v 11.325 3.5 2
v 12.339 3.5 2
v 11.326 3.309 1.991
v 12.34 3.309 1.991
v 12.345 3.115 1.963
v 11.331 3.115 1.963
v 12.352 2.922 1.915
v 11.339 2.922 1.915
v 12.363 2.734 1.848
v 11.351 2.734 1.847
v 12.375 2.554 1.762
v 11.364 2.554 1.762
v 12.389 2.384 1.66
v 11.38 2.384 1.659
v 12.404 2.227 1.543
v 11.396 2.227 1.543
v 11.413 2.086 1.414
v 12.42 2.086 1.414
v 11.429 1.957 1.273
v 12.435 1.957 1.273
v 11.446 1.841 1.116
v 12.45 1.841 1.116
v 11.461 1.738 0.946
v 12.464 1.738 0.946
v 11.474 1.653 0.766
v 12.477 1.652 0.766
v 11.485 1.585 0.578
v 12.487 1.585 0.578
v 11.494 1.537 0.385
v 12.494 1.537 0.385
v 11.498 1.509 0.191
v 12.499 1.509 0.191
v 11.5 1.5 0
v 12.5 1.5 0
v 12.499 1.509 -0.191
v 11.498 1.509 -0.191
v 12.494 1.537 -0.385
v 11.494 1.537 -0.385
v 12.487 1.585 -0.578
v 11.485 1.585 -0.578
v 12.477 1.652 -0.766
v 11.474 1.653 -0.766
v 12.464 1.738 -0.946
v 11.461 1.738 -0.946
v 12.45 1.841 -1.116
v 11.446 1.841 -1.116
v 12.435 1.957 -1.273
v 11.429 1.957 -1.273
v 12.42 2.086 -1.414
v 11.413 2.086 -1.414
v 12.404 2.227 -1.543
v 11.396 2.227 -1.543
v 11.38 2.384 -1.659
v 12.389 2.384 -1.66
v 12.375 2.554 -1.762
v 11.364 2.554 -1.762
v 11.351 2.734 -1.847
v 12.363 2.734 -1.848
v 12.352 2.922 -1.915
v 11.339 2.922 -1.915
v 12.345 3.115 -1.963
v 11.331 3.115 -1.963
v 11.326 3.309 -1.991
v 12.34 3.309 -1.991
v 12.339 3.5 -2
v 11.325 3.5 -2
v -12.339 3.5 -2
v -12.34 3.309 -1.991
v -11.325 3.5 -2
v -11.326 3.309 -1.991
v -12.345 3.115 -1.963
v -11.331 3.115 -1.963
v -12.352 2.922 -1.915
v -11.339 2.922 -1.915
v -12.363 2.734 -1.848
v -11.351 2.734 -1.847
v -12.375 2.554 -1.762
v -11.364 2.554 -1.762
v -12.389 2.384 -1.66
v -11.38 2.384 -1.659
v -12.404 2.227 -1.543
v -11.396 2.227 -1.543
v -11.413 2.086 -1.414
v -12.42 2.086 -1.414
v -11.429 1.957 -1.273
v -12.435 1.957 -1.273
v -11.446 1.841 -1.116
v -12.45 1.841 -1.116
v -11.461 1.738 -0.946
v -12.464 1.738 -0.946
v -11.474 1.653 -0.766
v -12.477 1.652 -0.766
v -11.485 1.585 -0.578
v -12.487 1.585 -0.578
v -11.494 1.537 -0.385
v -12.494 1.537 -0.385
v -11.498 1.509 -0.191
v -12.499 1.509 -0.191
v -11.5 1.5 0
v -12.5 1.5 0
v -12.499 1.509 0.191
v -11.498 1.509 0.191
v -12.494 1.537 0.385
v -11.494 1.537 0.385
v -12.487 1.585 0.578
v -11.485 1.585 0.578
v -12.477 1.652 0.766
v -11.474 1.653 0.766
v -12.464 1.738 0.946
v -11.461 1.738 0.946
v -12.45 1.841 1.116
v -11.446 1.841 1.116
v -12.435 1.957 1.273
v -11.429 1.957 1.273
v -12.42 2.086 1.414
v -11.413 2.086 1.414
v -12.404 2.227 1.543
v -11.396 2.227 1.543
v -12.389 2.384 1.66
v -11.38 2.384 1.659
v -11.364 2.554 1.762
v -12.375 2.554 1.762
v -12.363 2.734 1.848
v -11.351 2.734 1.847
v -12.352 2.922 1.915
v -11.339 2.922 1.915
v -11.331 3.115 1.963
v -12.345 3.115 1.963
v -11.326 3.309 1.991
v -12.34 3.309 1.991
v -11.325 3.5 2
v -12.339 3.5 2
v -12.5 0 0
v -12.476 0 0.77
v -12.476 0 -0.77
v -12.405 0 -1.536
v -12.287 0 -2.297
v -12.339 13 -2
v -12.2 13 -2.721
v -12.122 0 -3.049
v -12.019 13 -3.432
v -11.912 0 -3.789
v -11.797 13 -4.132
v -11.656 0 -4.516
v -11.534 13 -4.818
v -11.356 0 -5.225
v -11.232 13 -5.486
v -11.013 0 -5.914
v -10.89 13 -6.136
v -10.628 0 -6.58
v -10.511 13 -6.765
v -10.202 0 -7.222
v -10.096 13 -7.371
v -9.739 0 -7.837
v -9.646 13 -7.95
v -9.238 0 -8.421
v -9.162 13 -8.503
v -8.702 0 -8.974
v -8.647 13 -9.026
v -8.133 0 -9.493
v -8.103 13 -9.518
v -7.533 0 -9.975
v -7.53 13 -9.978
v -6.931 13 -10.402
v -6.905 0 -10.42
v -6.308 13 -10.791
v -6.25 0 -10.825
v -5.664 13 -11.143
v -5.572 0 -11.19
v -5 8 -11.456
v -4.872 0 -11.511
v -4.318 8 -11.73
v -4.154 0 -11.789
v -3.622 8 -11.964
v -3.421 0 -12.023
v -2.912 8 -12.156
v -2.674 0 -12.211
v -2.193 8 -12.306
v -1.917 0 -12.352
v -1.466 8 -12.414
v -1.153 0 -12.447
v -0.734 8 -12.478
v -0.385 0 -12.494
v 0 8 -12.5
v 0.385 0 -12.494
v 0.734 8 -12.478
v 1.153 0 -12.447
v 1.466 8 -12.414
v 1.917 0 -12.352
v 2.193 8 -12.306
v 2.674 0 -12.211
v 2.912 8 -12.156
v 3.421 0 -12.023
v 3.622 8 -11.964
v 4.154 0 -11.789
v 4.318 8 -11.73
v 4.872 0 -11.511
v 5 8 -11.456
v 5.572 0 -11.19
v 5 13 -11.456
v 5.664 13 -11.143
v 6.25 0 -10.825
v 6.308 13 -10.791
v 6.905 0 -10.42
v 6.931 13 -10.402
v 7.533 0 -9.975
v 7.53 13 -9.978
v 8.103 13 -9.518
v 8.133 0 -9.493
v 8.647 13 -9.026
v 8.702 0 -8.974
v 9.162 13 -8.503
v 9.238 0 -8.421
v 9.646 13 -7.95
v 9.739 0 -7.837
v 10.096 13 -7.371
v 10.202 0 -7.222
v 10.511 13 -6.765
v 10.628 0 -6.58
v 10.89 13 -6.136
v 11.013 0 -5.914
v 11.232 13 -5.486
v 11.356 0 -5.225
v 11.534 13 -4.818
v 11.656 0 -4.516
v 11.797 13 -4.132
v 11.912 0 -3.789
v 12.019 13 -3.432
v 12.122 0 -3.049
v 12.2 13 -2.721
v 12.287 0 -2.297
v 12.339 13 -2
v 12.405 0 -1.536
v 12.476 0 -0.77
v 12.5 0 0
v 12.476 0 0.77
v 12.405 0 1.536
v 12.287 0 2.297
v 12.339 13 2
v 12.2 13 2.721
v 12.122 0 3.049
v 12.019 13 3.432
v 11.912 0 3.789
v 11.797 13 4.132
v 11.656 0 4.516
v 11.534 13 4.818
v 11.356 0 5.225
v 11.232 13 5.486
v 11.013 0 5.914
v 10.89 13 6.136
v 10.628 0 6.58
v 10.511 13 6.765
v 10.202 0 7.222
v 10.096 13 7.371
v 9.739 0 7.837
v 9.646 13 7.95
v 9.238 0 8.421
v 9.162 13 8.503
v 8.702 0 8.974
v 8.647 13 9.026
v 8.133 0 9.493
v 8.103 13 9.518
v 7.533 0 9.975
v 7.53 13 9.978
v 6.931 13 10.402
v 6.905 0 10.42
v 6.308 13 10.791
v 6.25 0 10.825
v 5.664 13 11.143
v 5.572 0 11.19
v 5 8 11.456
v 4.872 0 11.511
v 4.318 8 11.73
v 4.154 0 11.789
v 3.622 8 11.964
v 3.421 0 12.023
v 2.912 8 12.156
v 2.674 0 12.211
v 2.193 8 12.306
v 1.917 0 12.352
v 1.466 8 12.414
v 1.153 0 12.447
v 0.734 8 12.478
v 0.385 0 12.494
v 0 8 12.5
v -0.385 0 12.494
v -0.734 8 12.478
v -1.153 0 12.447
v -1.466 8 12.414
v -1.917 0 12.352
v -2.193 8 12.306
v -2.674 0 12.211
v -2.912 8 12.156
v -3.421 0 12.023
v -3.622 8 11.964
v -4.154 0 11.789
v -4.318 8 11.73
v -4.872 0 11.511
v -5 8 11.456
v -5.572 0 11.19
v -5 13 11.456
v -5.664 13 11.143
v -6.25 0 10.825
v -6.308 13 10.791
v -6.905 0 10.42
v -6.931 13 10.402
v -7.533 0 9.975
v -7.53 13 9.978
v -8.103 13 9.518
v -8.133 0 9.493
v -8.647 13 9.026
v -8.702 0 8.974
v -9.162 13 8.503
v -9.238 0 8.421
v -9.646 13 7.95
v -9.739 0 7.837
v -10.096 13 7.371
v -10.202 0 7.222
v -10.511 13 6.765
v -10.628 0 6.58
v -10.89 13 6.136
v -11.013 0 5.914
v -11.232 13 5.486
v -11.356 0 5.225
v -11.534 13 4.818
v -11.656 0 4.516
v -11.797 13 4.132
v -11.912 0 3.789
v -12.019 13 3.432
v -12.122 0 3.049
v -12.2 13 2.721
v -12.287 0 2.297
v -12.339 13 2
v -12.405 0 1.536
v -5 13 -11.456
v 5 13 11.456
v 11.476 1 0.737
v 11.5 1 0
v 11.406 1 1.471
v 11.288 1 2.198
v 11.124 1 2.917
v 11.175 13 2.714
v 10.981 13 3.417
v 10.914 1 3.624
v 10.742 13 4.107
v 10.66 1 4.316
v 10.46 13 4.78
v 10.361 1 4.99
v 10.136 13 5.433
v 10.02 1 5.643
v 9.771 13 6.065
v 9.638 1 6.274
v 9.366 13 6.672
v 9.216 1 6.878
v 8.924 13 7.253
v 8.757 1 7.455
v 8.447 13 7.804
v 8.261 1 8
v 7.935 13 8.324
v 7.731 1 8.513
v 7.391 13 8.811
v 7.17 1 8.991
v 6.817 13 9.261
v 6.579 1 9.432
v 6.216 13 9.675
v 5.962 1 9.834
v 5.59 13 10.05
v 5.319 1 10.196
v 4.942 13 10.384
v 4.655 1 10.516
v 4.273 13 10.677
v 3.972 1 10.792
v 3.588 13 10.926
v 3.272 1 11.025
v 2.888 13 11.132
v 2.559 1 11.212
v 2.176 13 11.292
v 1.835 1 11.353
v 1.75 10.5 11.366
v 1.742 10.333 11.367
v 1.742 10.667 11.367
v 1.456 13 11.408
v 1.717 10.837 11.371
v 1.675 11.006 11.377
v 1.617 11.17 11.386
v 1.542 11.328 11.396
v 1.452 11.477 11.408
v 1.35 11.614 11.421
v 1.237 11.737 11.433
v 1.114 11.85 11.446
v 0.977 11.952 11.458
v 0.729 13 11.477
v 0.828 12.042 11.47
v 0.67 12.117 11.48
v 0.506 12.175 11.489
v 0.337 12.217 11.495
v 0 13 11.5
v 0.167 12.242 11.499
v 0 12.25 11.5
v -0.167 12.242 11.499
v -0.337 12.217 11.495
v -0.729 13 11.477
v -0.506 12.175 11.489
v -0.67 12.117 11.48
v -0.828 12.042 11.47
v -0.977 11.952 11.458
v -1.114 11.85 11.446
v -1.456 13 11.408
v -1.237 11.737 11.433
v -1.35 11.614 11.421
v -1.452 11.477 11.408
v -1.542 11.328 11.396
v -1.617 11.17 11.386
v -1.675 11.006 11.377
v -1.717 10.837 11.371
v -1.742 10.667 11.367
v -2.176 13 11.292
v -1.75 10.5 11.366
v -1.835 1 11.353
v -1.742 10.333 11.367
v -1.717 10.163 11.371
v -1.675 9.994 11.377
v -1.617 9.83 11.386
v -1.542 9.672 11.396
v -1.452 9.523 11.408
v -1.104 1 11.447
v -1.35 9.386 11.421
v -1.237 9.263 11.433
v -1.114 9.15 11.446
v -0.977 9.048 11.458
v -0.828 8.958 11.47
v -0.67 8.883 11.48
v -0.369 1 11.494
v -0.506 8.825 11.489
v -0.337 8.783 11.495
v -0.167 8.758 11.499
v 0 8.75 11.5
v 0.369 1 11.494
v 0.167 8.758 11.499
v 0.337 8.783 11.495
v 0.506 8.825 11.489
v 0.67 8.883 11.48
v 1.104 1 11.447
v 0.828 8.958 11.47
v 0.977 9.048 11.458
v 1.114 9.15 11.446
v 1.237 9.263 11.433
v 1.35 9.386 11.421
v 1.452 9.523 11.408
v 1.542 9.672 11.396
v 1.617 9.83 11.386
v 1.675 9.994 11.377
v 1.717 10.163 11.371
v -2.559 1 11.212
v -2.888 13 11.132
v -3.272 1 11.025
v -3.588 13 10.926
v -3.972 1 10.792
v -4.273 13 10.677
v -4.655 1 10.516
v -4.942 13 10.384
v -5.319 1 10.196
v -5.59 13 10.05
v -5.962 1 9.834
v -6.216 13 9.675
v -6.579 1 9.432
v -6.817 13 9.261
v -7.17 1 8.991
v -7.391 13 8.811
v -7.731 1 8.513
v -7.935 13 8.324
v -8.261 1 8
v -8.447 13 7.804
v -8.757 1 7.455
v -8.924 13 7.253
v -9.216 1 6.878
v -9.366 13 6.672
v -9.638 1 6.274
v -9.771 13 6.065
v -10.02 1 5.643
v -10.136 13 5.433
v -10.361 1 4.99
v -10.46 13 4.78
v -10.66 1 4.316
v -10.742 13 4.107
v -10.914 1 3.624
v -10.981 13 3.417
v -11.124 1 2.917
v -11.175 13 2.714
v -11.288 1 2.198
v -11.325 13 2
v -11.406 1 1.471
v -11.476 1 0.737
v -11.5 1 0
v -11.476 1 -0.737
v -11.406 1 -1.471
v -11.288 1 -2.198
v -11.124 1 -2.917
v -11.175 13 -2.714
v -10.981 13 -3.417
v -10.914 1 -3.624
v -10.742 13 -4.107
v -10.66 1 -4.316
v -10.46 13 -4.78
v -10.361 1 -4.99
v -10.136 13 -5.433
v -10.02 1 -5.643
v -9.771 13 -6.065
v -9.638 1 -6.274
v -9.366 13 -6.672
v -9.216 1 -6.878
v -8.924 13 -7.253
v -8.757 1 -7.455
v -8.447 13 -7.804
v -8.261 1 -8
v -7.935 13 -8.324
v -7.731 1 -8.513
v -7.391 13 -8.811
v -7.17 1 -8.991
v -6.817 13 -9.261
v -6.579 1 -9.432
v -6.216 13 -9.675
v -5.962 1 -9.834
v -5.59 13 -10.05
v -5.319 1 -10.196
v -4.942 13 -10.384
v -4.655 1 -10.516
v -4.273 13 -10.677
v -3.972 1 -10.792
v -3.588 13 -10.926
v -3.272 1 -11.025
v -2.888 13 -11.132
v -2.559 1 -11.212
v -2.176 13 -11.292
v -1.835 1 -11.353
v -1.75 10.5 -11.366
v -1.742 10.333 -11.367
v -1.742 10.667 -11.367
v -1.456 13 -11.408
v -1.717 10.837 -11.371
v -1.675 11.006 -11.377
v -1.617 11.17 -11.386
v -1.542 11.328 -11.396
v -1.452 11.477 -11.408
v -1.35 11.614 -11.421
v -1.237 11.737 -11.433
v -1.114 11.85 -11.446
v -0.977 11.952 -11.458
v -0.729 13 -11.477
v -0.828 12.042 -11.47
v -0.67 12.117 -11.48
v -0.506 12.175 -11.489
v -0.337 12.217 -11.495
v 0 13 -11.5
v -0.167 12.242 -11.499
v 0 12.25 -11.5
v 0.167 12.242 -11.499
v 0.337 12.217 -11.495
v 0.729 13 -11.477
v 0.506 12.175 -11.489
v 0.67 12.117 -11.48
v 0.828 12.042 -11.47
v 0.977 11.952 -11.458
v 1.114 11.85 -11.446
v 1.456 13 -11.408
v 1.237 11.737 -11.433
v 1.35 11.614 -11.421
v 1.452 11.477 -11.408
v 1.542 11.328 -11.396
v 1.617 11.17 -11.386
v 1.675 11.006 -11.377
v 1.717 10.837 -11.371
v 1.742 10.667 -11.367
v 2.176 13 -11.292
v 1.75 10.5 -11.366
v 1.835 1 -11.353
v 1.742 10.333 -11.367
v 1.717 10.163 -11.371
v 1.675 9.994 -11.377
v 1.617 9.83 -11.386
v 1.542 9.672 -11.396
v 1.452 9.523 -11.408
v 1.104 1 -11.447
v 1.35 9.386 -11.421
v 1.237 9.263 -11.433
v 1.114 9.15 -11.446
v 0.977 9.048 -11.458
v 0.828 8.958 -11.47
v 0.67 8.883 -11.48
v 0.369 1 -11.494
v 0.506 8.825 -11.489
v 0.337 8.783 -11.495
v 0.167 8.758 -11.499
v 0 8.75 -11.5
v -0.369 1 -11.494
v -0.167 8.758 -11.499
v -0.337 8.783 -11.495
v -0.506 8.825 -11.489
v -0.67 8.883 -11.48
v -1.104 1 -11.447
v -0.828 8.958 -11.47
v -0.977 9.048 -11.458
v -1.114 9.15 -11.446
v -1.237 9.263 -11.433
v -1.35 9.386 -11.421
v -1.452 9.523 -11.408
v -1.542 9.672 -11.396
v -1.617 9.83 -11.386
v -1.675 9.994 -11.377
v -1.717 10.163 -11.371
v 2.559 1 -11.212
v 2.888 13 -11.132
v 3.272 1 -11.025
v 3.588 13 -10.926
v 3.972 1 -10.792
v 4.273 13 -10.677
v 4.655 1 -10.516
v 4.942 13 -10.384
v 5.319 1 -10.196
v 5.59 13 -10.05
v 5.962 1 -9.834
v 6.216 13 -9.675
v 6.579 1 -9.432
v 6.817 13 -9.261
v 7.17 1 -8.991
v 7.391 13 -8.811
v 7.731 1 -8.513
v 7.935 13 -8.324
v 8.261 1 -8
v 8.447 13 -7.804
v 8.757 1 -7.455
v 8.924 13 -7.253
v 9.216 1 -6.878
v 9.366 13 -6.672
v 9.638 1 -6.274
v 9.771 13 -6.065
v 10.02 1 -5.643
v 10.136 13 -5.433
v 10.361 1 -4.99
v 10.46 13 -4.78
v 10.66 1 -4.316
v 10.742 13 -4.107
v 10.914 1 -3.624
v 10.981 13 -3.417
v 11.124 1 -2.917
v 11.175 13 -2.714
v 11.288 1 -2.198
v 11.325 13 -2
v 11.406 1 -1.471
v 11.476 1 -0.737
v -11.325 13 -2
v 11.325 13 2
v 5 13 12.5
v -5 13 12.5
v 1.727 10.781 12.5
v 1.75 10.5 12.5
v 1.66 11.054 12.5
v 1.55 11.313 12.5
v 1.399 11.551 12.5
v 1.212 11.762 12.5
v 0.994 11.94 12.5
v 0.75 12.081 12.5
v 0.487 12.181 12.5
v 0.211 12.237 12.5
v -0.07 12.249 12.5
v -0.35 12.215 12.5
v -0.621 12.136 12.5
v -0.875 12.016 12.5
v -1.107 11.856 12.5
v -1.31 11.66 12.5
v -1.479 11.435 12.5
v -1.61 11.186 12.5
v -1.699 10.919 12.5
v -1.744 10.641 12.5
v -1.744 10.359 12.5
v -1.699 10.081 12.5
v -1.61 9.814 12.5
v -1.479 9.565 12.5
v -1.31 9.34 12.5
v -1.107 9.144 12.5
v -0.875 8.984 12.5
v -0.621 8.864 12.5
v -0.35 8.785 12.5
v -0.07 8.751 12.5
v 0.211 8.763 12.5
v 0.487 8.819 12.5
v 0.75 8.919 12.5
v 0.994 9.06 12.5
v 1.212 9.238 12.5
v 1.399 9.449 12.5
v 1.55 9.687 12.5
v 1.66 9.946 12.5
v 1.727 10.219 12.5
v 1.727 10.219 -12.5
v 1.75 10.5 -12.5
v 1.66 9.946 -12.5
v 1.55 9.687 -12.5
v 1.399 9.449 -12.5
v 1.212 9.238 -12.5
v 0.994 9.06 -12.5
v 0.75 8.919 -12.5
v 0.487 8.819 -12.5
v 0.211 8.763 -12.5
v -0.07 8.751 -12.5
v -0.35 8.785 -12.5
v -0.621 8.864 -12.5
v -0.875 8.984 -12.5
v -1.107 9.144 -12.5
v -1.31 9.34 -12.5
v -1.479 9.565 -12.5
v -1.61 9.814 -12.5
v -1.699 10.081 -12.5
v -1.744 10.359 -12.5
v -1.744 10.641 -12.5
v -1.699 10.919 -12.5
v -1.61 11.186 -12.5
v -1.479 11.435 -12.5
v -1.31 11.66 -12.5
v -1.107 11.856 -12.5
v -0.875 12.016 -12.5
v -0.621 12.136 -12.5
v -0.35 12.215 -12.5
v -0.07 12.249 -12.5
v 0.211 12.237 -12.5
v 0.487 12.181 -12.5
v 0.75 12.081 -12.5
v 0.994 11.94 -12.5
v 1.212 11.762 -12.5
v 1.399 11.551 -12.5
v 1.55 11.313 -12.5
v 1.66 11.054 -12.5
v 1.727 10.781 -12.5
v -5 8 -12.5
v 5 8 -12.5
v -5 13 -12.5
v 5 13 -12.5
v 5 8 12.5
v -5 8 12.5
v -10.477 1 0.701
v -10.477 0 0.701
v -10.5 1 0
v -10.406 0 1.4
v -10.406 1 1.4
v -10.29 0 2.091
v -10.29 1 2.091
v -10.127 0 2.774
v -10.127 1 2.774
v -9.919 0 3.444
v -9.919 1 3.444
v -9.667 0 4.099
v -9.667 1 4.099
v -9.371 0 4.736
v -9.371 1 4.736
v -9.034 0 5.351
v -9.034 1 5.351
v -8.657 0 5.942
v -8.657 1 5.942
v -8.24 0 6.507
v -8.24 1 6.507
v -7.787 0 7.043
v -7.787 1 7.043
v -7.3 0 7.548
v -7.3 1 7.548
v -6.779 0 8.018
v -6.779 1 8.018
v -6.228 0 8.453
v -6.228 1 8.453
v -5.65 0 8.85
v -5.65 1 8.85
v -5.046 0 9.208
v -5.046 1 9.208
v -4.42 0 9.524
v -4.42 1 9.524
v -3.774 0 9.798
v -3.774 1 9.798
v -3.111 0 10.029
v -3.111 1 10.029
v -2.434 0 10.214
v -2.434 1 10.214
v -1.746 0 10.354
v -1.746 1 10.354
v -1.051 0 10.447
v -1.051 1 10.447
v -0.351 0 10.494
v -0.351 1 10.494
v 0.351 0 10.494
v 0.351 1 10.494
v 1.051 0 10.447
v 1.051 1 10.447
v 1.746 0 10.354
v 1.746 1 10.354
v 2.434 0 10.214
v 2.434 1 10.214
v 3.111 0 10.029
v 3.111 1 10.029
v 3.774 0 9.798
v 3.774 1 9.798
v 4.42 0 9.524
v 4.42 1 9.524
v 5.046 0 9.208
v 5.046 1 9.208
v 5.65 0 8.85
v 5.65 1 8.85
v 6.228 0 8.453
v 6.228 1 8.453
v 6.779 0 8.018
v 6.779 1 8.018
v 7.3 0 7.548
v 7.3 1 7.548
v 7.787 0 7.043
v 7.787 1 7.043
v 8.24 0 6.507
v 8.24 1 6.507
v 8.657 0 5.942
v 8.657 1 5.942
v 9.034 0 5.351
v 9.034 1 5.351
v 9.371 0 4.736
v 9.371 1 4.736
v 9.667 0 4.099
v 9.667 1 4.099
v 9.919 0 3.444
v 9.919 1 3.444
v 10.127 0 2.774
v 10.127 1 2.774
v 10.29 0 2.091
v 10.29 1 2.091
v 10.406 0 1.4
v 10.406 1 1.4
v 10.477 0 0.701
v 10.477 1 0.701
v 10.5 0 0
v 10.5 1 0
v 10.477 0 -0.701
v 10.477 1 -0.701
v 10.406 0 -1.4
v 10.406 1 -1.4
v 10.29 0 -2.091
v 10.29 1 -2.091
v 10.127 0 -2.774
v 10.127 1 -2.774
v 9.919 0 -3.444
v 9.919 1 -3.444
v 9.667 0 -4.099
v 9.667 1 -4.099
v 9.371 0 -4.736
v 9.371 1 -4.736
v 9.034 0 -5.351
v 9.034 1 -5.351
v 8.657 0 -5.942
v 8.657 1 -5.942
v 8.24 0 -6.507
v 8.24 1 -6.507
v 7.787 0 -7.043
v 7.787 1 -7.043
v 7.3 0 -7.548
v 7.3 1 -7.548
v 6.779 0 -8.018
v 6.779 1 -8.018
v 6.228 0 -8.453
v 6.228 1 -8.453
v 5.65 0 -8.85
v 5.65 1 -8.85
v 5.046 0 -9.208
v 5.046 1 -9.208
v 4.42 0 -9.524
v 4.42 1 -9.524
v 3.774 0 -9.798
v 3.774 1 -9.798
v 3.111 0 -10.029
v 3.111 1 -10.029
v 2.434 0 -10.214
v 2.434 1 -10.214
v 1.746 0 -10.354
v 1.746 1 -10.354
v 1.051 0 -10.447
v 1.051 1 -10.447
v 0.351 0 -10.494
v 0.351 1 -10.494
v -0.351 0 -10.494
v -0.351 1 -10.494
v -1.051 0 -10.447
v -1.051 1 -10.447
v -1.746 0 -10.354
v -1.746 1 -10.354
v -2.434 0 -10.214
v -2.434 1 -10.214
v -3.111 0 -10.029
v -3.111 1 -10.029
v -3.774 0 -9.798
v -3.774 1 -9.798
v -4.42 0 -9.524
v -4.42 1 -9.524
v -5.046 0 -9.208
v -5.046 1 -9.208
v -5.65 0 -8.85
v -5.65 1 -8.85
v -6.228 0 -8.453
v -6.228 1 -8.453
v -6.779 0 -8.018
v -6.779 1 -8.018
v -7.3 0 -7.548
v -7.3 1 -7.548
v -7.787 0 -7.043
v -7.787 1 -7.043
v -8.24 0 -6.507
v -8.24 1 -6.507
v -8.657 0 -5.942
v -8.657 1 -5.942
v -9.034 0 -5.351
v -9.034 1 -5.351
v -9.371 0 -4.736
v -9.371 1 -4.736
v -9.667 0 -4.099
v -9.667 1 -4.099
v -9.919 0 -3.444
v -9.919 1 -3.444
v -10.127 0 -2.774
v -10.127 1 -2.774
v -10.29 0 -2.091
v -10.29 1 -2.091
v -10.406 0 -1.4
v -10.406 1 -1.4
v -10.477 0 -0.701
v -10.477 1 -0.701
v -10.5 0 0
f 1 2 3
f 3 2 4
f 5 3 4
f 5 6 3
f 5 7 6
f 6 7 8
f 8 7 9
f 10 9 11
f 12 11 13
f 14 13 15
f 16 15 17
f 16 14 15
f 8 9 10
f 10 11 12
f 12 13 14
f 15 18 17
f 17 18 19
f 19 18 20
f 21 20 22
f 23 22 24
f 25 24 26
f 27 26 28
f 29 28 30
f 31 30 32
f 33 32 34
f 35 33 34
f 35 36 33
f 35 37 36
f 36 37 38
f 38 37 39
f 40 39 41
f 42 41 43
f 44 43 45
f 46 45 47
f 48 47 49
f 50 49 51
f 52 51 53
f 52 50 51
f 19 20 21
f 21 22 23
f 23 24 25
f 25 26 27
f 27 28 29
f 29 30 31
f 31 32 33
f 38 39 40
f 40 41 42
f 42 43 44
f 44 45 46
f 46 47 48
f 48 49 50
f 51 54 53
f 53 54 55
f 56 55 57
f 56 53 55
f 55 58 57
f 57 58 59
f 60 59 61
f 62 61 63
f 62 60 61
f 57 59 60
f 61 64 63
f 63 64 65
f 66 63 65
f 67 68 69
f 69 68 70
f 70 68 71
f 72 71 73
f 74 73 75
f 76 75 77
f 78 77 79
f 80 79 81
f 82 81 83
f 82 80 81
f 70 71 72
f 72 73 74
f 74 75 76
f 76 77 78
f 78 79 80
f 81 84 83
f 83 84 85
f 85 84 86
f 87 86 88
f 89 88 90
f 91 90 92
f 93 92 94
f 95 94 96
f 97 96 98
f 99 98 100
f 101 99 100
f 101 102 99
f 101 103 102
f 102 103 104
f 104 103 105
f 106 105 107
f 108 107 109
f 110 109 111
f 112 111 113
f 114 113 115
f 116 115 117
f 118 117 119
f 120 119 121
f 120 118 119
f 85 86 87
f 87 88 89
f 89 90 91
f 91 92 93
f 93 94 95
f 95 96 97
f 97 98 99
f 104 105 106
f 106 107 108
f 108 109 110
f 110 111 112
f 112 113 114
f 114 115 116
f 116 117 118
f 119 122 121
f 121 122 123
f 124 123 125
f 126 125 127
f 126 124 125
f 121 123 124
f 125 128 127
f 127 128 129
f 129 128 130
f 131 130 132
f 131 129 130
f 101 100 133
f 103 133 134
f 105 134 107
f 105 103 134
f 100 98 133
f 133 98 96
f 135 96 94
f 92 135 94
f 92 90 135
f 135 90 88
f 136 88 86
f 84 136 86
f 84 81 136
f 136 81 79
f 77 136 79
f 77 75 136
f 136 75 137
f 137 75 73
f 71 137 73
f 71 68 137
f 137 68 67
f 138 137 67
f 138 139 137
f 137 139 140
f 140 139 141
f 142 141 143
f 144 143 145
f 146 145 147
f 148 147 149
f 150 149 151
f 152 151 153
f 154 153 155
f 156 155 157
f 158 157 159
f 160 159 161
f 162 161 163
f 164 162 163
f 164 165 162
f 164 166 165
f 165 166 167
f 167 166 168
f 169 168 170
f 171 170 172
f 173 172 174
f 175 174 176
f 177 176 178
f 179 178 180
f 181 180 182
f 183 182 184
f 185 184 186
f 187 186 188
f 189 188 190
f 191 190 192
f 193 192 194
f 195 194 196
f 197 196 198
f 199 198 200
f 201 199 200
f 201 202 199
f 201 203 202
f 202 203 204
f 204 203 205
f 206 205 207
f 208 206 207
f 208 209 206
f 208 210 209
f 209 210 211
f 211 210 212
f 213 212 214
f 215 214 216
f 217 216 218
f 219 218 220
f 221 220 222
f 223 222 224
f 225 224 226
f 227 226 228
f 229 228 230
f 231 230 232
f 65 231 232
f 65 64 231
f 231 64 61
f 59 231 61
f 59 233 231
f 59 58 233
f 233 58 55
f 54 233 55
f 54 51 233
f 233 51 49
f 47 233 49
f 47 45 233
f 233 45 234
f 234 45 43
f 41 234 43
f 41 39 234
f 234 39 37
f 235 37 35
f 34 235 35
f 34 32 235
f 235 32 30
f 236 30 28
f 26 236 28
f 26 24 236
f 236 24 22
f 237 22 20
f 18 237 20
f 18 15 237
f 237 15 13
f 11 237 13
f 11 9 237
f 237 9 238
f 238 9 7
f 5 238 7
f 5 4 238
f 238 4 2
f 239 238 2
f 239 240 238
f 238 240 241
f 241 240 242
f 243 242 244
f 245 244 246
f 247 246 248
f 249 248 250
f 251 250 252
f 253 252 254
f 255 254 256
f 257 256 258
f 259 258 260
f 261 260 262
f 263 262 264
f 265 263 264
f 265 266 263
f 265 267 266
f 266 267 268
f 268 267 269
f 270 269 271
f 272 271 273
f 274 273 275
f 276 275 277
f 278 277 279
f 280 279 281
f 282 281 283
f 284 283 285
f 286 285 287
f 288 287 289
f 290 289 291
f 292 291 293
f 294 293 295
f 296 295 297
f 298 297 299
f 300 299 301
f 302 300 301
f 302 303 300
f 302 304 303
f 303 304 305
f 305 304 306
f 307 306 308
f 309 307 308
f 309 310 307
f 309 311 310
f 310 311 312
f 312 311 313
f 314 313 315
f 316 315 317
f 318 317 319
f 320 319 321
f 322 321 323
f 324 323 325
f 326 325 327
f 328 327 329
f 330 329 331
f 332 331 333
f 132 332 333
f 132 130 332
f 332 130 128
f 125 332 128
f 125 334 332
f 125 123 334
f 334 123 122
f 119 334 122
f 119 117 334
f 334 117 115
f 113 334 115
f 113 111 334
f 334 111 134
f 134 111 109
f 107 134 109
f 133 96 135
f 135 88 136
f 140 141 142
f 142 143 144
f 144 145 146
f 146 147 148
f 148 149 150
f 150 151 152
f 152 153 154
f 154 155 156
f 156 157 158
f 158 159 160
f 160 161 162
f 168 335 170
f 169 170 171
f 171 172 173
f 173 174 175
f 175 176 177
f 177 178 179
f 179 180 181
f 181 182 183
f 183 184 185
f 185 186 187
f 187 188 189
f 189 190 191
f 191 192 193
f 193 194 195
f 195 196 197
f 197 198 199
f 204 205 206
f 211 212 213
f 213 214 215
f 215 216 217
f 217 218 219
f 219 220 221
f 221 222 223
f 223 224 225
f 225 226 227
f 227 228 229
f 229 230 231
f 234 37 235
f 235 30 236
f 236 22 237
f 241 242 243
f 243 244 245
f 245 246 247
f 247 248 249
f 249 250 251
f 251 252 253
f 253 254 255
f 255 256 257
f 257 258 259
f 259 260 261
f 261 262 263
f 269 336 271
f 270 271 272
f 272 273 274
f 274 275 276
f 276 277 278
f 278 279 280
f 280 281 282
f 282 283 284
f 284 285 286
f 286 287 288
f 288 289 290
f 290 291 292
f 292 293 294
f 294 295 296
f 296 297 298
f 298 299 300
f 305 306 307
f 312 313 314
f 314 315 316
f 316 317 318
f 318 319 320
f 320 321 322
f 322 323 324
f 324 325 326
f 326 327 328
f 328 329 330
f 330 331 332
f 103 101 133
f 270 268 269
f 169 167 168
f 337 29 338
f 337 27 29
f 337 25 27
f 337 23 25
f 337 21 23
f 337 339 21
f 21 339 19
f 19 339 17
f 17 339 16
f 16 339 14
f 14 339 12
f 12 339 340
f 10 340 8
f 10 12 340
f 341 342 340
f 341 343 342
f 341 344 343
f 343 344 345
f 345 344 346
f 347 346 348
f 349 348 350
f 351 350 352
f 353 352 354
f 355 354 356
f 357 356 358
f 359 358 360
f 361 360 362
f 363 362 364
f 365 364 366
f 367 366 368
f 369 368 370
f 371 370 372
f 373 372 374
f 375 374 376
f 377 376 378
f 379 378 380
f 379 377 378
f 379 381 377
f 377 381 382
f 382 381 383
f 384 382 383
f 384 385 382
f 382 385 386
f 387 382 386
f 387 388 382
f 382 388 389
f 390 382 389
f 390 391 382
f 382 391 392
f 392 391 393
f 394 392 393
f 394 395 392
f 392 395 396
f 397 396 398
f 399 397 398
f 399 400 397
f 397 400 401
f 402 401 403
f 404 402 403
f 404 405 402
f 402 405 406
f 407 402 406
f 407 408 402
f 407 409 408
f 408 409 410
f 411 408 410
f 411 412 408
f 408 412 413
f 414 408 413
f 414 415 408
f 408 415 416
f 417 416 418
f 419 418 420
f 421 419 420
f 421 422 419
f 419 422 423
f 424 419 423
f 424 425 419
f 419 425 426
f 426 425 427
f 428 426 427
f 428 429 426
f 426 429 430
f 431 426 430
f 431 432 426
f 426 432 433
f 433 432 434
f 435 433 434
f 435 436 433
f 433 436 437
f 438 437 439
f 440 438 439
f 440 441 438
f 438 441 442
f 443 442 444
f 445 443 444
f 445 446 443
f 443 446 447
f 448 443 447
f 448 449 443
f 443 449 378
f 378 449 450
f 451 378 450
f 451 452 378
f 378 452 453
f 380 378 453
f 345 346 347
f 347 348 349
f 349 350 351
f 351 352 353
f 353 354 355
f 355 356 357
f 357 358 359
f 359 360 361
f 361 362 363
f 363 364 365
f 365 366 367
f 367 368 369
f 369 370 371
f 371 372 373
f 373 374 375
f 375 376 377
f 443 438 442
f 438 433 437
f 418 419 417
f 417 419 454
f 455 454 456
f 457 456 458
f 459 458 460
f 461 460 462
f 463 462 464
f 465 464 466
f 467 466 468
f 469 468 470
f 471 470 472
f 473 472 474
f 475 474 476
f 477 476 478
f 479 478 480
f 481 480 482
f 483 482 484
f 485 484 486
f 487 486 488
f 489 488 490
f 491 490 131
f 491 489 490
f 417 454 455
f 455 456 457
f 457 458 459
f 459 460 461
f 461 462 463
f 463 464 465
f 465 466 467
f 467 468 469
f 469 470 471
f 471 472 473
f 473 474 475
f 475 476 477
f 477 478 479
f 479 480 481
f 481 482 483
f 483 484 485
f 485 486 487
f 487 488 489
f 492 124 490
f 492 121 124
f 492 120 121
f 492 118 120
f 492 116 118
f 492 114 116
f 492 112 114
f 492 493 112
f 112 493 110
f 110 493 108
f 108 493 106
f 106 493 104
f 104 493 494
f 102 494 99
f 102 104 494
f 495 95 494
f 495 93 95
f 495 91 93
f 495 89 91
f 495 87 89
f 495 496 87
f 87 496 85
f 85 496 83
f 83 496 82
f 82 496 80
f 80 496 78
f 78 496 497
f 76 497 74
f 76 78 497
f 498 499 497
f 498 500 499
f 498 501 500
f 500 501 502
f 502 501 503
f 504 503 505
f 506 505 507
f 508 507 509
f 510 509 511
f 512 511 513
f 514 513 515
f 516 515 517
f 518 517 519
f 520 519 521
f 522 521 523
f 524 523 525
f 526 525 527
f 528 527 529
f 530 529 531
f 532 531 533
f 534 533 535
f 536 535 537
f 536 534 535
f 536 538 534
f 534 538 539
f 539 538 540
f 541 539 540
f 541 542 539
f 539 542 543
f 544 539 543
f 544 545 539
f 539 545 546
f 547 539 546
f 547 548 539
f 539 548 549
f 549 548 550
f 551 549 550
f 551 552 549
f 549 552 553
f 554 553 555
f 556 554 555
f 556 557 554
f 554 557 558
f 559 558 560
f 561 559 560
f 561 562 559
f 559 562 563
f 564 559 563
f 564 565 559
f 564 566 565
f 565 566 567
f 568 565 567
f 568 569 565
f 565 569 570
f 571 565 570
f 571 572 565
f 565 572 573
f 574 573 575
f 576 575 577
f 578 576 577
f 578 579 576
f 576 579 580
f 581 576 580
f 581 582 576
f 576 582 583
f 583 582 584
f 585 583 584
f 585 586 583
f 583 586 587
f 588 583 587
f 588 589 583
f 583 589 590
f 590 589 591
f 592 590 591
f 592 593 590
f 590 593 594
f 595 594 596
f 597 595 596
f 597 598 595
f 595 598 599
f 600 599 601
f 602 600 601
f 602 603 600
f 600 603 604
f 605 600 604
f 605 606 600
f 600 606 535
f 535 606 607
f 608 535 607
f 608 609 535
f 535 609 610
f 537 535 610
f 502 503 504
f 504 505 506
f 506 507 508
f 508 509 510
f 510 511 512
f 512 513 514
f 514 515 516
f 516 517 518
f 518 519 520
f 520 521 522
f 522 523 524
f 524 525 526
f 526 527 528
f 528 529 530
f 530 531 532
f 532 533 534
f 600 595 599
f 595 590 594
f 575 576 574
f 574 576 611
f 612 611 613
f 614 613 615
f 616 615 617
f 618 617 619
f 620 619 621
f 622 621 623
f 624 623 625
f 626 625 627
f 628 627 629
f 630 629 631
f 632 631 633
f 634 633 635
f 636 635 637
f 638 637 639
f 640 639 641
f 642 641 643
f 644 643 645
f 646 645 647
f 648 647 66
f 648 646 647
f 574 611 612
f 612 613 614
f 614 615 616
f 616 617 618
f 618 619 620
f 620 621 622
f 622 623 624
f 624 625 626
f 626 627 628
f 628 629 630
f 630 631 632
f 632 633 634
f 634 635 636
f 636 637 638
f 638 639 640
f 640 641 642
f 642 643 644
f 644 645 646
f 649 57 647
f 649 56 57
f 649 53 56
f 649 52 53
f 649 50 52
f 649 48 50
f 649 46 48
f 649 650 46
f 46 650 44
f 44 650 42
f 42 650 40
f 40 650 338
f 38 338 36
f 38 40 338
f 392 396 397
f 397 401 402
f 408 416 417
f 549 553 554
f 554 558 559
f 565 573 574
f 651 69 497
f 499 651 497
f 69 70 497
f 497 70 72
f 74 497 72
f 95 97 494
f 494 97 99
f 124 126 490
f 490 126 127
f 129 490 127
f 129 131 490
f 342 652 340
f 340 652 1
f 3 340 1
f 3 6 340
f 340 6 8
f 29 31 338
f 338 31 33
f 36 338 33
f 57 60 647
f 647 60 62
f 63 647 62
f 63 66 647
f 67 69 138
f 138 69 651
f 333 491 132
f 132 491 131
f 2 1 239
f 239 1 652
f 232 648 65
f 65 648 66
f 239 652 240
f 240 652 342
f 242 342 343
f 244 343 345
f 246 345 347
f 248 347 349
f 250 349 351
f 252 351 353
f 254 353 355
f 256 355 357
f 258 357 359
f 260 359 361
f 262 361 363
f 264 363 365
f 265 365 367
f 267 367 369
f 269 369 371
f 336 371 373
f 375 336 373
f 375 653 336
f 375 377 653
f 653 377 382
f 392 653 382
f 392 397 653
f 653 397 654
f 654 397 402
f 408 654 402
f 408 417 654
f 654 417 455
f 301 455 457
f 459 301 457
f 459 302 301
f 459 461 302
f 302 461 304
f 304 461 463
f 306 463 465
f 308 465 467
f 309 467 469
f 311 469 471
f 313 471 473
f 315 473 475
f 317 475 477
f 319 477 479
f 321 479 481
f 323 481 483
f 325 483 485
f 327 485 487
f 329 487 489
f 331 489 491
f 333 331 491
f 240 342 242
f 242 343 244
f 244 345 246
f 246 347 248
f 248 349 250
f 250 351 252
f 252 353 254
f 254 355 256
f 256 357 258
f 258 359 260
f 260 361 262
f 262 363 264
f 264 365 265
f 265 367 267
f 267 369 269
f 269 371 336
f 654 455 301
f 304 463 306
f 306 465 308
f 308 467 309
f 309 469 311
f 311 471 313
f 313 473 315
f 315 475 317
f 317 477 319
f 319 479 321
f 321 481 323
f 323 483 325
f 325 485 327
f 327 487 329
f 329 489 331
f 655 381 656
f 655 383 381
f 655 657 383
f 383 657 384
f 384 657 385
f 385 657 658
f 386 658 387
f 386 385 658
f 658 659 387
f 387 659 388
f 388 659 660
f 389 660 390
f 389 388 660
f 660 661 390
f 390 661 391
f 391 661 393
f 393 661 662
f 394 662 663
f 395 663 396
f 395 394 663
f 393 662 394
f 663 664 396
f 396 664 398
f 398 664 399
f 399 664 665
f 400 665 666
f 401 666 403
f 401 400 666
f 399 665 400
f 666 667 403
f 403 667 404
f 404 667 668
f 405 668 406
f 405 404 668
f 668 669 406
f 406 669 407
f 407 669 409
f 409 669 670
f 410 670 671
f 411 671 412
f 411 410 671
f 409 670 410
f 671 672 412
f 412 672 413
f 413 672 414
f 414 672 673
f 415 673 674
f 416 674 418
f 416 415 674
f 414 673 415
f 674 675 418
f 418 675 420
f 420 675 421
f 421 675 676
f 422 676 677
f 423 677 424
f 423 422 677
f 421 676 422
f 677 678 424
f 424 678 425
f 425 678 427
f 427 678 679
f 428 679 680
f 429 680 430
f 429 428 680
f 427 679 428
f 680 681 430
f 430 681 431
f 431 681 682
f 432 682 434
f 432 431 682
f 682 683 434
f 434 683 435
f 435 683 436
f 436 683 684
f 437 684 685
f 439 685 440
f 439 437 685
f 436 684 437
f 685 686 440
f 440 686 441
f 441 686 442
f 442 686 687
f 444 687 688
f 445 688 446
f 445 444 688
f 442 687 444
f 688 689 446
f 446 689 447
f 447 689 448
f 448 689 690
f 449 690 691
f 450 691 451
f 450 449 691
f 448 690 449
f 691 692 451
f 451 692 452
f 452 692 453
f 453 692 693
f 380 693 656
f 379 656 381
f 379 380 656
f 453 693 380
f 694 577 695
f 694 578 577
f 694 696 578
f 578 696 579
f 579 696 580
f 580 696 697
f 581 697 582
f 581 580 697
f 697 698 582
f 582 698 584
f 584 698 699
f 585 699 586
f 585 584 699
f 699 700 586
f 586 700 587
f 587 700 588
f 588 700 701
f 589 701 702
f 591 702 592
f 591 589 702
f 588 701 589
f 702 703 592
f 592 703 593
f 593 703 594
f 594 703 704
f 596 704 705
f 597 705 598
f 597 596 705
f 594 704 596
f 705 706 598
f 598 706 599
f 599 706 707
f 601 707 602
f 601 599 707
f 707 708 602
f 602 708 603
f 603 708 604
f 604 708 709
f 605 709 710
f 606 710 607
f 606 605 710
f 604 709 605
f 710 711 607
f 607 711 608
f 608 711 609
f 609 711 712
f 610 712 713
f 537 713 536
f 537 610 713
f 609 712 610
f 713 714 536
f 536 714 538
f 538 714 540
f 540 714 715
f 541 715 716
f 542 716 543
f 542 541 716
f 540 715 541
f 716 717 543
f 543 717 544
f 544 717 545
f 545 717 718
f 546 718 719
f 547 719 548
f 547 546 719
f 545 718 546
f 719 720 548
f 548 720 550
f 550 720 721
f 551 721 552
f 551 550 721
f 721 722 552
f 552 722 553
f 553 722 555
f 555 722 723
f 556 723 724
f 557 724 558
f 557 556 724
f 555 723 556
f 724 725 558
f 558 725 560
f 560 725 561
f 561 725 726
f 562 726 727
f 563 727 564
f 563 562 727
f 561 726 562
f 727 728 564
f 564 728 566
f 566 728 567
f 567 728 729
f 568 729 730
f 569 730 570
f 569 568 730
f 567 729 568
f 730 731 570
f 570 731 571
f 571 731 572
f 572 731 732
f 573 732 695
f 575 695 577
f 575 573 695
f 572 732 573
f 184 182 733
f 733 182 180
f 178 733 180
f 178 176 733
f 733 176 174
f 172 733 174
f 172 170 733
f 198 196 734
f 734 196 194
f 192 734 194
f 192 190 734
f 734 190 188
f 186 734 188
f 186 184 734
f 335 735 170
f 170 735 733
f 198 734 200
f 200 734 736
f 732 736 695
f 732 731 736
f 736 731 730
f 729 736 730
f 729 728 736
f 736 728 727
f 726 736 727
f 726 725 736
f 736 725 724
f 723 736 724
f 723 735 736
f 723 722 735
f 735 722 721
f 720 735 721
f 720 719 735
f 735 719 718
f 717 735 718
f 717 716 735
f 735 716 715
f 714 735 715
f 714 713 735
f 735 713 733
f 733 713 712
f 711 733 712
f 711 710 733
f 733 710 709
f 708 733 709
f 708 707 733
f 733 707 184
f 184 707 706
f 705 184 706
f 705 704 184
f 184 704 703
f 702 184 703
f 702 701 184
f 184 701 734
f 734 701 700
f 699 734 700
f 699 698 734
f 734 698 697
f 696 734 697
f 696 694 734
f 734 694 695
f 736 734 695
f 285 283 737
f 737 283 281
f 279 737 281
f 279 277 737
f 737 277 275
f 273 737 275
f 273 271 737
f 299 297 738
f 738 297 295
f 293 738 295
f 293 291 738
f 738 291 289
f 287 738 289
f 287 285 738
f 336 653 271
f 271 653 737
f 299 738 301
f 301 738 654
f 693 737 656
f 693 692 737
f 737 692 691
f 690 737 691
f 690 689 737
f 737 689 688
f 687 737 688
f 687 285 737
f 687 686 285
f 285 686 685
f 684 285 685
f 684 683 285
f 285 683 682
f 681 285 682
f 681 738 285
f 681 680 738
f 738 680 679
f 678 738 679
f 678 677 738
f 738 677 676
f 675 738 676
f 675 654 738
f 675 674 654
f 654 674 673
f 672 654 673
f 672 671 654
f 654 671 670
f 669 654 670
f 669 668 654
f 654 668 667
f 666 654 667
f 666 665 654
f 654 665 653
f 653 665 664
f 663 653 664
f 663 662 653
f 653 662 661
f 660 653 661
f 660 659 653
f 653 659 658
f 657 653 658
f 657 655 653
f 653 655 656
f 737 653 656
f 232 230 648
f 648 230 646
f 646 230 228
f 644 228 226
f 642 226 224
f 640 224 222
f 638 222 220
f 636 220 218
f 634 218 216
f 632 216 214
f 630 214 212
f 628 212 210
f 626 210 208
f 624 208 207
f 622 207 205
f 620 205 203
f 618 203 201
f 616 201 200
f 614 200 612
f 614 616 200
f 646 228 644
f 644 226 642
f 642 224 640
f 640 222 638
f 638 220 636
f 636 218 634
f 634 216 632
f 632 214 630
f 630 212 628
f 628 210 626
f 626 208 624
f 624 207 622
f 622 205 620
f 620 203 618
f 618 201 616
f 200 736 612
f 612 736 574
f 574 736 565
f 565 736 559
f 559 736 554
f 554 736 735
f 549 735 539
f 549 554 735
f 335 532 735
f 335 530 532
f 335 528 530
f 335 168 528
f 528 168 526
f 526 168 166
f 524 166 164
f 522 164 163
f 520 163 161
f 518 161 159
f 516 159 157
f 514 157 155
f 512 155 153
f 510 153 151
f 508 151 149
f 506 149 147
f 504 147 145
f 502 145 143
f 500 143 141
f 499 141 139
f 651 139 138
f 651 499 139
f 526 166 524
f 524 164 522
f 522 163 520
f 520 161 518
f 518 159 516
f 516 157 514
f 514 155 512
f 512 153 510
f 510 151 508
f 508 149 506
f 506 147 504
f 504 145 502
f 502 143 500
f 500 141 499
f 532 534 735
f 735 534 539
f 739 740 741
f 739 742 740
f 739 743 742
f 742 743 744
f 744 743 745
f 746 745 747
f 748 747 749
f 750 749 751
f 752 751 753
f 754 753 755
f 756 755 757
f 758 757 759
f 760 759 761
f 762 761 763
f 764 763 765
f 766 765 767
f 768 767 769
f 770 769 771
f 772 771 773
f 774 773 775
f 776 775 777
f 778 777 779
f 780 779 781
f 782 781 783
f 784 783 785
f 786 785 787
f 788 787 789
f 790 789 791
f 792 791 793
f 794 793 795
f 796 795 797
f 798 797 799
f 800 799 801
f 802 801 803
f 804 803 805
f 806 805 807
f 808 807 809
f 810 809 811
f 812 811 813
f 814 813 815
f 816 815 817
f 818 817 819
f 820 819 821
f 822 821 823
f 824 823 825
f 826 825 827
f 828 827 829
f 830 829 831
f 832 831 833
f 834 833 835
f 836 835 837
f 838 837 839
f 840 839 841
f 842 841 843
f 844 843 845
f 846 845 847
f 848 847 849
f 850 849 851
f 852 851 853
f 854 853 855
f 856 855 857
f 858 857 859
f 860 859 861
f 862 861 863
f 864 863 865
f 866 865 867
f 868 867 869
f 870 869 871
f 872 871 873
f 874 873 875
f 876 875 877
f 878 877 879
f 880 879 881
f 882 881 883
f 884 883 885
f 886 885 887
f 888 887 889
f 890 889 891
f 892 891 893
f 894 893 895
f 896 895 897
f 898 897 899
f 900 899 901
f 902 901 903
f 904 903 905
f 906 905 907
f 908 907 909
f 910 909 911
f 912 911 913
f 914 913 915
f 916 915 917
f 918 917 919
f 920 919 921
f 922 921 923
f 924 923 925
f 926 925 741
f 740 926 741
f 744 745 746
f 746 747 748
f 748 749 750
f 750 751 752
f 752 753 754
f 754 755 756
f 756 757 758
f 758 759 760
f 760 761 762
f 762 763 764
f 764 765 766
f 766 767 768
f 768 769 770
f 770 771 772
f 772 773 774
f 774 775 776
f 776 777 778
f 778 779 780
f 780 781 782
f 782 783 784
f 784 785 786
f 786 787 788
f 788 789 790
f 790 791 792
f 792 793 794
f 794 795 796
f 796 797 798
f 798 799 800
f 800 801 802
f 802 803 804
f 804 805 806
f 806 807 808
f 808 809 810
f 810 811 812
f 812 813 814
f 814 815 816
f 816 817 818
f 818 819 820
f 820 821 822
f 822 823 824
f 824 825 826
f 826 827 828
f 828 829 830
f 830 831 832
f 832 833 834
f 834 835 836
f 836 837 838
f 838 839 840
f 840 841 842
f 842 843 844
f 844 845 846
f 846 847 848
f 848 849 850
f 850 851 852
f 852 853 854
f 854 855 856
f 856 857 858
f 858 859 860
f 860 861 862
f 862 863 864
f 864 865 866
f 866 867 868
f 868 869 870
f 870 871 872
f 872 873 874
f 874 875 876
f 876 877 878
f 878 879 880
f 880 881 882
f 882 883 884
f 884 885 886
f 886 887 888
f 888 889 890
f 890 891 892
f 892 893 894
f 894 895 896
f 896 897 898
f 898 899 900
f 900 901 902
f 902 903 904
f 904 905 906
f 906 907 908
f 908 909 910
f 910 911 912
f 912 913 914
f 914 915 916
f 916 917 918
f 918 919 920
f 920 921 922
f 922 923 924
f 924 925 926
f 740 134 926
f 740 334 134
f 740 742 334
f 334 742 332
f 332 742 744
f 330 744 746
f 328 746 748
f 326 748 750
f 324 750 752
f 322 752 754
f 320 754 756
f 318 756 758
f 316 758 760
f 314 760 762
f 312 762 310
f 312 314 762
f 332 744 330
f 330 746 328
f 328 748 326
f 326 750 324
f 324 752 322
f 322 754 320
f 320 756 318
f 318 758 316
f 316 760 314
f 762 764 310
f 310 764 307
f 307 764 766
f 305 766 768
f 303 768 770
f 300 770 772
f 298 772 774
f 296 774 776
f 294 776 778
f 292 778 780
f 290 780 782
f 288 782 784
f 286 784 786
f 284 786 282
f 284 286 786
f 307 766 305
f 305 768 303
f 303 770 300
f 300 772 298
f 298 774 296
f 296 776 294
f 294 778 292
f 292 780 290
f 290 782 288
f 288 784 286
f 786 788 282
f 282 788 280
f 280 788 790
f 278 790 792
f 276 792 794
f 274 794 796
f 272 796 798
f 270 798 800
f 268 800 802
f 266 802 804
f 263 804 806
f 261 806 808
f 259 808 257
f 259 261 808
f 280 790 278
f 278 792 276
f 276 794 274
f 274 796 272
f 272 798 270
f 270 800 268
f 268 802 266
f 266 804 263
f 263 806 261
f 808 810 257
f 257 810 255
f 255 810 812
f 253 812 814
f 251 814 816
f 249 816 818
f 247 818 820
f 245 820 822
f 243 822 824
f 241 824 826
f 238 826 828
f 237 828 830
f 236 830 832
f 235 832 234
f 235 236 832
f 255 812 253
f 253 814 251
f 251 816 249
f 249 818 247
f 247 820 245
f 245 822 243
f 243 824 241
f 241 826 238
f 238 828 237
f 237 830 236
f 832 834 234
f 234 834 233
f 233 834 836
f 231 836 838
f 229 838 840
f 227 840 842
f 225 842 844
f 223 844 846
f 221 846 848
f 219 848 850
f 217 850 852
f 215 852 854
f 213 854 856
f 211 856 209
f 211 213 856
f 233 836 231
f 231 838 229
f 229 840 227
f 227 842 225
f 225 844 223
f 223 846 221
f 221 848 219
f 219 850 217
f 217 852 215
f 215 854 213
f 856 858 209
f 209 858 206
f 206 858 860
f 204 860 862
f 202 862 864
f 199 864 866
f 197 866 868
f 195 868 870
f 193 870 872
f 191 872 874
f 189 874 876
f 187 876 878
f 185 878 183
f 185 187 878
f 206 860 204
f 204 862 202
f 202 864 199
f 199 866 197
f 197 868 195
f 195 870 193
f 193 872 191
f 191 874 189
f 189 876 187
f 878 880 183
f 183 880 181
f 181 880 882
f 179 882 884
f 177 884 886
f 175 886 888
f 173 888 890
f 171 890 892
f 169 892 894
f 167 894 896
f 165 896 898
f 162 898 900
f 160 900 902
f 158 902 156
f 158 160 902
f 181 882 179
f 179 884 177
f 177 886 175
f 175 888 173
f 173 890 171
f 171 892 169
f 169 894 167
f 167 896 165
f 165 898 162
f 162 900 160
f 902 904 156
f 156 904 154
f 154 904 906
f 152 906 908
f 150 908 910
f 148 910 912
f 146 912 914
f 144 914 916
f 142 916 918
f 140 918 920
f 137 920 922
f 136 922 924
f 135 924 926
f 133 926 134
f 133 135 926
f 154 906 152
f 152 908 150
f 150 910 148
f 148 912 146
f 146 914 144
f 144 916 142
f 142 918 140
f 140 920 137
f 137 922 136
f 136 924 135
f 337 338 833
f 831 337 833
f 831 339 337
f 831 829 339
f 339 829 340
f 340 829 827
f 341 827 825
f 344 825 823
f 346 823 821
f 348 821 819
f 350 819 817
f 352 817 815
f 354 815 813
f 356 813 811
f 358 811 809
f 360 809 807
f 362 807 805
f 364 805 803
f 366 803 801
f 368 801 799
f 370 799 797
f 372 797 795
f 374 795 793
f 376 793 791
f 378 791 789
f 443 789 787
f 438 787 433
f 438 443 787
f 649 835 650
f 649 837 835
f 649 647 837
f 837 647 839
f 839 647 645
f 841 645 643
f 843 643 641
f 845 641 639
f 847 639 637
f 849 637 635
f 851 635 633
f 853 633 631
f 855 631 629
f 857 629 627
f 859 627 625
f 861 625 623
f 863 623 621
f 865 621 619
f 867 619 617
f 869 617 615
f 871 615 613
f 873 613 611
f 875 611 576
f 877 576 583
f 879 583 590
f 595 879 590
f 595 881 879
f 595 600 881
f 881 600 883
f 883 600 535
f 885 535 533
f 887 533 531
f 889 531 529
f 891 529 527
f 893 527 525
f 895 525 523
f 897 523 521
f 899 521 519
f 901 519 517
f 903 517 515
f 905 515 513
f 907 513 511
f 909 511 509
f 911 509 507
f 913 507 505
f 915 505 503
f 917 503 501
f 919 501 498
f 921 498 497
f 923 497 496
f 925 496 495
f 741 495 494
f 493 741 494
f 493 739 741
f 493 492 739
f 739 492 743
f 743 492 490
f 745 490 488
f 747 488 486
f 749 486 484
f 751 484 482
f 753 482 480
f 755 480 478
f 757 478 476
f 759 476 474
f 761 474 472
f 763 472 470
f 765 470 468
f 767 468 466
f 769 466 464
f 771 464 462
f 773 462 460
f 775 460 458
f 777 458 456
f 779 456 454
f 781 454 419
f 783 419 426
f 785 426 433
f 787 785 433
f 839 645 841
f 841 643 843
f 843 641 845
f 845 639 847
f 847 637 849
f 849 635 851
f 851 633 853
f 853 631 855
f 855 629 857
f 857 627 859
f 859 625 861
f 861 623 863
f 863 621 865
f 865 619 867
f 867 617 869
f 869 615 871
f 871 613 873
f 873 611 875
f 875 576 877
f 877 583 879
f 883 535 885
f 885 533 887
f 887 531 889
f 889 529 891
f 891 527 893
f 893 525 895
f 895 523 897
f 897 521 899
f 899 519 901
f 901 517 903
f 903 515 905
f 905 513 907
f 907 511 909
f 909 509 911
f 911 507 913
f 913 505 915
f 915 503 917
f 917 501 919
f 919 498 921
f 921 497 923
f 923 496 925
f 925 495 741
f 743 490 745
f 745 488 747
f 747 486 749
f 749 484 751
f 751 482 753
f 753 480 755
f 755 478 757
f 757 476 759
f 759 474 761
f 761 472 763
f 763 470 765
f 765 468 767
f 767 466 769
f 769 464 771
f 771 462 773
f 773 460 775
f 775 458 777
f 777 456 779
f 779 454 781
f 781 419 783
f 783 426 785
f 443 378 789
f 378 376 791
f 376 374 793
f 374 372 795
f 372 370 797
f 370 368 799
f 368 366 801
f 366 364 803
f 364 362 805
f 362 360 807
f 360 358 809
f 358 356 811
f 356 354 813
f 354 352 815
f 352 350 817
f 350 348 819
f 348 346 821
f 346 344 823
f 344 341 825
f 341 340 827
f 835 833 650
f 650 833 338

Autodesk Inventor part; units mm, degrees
ref_plane "YZ Plane" through (0, 0, 0) normal (1, 0, 0) x (0, 1, 0)
ref_plane "XZ Plane" through (0, 0, 0) normal (0, 1, 0) x (-1, 0, 0)
ref_plane "XY Plane" through (0, 0, 0) normal (0, 0, 1) x (1, 0, 0)
sketch "Esquisse1" plane through (0, 0, 0) normal (0, 1, 0) x (-1, 0, 0)
  circle A0 centre (0, 0) radius 10.5
  circle A1 centre (0, 0) radius 12.5
  dimension "d0" = 21
  dimension "d1" = 25
extrude "Extrusion1" add sketch "Esquisse1" along normal blind 1
sketch "Esquisse2" plane through (0, 1, 0) normal (0, 1, 0) x (1, 0, 0)
  circle A0 centre (0, 0) radius 12.5
  circle A1 centre (0, 0) radius 11.5
  dimension "d4" = 23
  dimension "d5" = 25
extrude "Extrusion2" add sketch "Esquisse2" along normal blind 12
sketch "Esquisse3" plane through (0, 13, 0) normal (0, 1, 0) x (1, 0, 0)
  line L0 (-5, -12.5) -> (5, -12.5)
  line L1 (5, -12.5) -> (5, -10.3562)
  line L2 (5, 12.5) -> (-5, 12.5)
  line L3 (-5, 12.5) -> (-5, 10.3562)
  circle A0 centre (0, 0) radius 12.5 projected
  arc A1 (-5, 10.3562) -> (-5, -10.3562) centre (0, 0) ccw
  circle A2 centre (0, 0) radius 11.5 projected
  arc A3 (5, 10.3562) -> (-5, 10.3562) centre (0, 0) ccw
  arc A4 (-5, -10.3562) -> (5, -10.3562) centre (0, 0) ccw
  arc A5 (5, -10.3562) -> (5, 10.3562) centre (0, 0) ccw
  line L4 (-5, 10.3562) -> (-5, -10.3562)
  line L5 (-5, -10.3562) -> (-5, -12.5)
  line L6 (5, 10.3562) -> (5, 12.5)
  line L7 (5, -10.3562) -> (5, 10.3562)
  dimension "d8" = 5
  dimension "d9" = 5
  dimension "d10" = 0
extrude "Extrusion3" add sketch "Esquisse3" against normal blind 5 contours L5 A0 L0 | A0 L1 L0 | A0 L5 A2 L1 | A0 L6 A2 L3 | L3 L2 A0 | L2 L6 A0
sketch "Esquisse4" plane through (-5, 13, 12.5) normal (0, 0, 1) x (1, 0, 0)
  line L0 (10, -5) -> (0, 0) construction
  line L1 (10, 0) -> (0, -5) construction
  circle A0 centre (5, -2.5) radius 1.75
  point P0 (5, -13)
  dimension "d13" = 3.5
extrude "Extrusion4" cut sketch "Esquisse4" against normal through all
sketch "Esquisse6" plane through (0, 13, 0) normal (0, 1, 0) x (1, 0, 0)
  line L0 (-12.5, -2) -> (12.5, -2)
  line L1 (12.5, -2) -> (12.5, 2)
  line L2 (12.5, 2) -> (-12.5, 2)
  line L3 (-12.5, 2) -> (-12.5, -2)
  arc A0 (-5, 11.4564) -> (-5, -11.4564) centre (0, 0) ccw projected
  arc A1 (5, -11.4564) -> (5, 11.4564) centre (0, 0) ccw projected
  dimension "d17" = 4
  dimension "d18" = 2
extrude "Extrusion5" cut sketch "Esquisse6" against normal blind 9.5
sketch "Esquisse7" plane through (0, 3.5, 0) normal (0, 1, 0) x (1, 0, 0)
  line L0 (-12.5, -2) -> (12.5, -2)
  line L1 (12.5, -2) -> (12.5, 0)
  line L2 (12.5, 2) -> (-12.5, 2)
  line L3 (-12.5, 2) -> (-12.5, 0)
  line L4 (-11.3248, -2) -> (-12.339, -2) projected
  line L5 (-12.339, 2) -> (-11.3248, 2) projected
  arc A0 (-12.339, 2) -> (-12.339, -2) centre (0, 0) ccw projected
  arc A1 (12.339, -2) -> (12.339, 2) centre (0, 0) ccw projected
  line L6 (-12.5, 0) -> (12.5, 0)
  line L7 (-12.5, 0) -> (-12.5, -2)
  line L8 (12.5, 0) -> (12.5, 2)
revolve "Révolution1" cut sketch "Esquisse7" angle 360 about axis through (-12.5, 3.5, 0) along (1, 0, 0) contours L3 L2 A0 | A0 L2 A1 L6 | A1 L2 L8
equation "\"d18\" = 0.5 * d17"
properties part number "optoforce_base"
